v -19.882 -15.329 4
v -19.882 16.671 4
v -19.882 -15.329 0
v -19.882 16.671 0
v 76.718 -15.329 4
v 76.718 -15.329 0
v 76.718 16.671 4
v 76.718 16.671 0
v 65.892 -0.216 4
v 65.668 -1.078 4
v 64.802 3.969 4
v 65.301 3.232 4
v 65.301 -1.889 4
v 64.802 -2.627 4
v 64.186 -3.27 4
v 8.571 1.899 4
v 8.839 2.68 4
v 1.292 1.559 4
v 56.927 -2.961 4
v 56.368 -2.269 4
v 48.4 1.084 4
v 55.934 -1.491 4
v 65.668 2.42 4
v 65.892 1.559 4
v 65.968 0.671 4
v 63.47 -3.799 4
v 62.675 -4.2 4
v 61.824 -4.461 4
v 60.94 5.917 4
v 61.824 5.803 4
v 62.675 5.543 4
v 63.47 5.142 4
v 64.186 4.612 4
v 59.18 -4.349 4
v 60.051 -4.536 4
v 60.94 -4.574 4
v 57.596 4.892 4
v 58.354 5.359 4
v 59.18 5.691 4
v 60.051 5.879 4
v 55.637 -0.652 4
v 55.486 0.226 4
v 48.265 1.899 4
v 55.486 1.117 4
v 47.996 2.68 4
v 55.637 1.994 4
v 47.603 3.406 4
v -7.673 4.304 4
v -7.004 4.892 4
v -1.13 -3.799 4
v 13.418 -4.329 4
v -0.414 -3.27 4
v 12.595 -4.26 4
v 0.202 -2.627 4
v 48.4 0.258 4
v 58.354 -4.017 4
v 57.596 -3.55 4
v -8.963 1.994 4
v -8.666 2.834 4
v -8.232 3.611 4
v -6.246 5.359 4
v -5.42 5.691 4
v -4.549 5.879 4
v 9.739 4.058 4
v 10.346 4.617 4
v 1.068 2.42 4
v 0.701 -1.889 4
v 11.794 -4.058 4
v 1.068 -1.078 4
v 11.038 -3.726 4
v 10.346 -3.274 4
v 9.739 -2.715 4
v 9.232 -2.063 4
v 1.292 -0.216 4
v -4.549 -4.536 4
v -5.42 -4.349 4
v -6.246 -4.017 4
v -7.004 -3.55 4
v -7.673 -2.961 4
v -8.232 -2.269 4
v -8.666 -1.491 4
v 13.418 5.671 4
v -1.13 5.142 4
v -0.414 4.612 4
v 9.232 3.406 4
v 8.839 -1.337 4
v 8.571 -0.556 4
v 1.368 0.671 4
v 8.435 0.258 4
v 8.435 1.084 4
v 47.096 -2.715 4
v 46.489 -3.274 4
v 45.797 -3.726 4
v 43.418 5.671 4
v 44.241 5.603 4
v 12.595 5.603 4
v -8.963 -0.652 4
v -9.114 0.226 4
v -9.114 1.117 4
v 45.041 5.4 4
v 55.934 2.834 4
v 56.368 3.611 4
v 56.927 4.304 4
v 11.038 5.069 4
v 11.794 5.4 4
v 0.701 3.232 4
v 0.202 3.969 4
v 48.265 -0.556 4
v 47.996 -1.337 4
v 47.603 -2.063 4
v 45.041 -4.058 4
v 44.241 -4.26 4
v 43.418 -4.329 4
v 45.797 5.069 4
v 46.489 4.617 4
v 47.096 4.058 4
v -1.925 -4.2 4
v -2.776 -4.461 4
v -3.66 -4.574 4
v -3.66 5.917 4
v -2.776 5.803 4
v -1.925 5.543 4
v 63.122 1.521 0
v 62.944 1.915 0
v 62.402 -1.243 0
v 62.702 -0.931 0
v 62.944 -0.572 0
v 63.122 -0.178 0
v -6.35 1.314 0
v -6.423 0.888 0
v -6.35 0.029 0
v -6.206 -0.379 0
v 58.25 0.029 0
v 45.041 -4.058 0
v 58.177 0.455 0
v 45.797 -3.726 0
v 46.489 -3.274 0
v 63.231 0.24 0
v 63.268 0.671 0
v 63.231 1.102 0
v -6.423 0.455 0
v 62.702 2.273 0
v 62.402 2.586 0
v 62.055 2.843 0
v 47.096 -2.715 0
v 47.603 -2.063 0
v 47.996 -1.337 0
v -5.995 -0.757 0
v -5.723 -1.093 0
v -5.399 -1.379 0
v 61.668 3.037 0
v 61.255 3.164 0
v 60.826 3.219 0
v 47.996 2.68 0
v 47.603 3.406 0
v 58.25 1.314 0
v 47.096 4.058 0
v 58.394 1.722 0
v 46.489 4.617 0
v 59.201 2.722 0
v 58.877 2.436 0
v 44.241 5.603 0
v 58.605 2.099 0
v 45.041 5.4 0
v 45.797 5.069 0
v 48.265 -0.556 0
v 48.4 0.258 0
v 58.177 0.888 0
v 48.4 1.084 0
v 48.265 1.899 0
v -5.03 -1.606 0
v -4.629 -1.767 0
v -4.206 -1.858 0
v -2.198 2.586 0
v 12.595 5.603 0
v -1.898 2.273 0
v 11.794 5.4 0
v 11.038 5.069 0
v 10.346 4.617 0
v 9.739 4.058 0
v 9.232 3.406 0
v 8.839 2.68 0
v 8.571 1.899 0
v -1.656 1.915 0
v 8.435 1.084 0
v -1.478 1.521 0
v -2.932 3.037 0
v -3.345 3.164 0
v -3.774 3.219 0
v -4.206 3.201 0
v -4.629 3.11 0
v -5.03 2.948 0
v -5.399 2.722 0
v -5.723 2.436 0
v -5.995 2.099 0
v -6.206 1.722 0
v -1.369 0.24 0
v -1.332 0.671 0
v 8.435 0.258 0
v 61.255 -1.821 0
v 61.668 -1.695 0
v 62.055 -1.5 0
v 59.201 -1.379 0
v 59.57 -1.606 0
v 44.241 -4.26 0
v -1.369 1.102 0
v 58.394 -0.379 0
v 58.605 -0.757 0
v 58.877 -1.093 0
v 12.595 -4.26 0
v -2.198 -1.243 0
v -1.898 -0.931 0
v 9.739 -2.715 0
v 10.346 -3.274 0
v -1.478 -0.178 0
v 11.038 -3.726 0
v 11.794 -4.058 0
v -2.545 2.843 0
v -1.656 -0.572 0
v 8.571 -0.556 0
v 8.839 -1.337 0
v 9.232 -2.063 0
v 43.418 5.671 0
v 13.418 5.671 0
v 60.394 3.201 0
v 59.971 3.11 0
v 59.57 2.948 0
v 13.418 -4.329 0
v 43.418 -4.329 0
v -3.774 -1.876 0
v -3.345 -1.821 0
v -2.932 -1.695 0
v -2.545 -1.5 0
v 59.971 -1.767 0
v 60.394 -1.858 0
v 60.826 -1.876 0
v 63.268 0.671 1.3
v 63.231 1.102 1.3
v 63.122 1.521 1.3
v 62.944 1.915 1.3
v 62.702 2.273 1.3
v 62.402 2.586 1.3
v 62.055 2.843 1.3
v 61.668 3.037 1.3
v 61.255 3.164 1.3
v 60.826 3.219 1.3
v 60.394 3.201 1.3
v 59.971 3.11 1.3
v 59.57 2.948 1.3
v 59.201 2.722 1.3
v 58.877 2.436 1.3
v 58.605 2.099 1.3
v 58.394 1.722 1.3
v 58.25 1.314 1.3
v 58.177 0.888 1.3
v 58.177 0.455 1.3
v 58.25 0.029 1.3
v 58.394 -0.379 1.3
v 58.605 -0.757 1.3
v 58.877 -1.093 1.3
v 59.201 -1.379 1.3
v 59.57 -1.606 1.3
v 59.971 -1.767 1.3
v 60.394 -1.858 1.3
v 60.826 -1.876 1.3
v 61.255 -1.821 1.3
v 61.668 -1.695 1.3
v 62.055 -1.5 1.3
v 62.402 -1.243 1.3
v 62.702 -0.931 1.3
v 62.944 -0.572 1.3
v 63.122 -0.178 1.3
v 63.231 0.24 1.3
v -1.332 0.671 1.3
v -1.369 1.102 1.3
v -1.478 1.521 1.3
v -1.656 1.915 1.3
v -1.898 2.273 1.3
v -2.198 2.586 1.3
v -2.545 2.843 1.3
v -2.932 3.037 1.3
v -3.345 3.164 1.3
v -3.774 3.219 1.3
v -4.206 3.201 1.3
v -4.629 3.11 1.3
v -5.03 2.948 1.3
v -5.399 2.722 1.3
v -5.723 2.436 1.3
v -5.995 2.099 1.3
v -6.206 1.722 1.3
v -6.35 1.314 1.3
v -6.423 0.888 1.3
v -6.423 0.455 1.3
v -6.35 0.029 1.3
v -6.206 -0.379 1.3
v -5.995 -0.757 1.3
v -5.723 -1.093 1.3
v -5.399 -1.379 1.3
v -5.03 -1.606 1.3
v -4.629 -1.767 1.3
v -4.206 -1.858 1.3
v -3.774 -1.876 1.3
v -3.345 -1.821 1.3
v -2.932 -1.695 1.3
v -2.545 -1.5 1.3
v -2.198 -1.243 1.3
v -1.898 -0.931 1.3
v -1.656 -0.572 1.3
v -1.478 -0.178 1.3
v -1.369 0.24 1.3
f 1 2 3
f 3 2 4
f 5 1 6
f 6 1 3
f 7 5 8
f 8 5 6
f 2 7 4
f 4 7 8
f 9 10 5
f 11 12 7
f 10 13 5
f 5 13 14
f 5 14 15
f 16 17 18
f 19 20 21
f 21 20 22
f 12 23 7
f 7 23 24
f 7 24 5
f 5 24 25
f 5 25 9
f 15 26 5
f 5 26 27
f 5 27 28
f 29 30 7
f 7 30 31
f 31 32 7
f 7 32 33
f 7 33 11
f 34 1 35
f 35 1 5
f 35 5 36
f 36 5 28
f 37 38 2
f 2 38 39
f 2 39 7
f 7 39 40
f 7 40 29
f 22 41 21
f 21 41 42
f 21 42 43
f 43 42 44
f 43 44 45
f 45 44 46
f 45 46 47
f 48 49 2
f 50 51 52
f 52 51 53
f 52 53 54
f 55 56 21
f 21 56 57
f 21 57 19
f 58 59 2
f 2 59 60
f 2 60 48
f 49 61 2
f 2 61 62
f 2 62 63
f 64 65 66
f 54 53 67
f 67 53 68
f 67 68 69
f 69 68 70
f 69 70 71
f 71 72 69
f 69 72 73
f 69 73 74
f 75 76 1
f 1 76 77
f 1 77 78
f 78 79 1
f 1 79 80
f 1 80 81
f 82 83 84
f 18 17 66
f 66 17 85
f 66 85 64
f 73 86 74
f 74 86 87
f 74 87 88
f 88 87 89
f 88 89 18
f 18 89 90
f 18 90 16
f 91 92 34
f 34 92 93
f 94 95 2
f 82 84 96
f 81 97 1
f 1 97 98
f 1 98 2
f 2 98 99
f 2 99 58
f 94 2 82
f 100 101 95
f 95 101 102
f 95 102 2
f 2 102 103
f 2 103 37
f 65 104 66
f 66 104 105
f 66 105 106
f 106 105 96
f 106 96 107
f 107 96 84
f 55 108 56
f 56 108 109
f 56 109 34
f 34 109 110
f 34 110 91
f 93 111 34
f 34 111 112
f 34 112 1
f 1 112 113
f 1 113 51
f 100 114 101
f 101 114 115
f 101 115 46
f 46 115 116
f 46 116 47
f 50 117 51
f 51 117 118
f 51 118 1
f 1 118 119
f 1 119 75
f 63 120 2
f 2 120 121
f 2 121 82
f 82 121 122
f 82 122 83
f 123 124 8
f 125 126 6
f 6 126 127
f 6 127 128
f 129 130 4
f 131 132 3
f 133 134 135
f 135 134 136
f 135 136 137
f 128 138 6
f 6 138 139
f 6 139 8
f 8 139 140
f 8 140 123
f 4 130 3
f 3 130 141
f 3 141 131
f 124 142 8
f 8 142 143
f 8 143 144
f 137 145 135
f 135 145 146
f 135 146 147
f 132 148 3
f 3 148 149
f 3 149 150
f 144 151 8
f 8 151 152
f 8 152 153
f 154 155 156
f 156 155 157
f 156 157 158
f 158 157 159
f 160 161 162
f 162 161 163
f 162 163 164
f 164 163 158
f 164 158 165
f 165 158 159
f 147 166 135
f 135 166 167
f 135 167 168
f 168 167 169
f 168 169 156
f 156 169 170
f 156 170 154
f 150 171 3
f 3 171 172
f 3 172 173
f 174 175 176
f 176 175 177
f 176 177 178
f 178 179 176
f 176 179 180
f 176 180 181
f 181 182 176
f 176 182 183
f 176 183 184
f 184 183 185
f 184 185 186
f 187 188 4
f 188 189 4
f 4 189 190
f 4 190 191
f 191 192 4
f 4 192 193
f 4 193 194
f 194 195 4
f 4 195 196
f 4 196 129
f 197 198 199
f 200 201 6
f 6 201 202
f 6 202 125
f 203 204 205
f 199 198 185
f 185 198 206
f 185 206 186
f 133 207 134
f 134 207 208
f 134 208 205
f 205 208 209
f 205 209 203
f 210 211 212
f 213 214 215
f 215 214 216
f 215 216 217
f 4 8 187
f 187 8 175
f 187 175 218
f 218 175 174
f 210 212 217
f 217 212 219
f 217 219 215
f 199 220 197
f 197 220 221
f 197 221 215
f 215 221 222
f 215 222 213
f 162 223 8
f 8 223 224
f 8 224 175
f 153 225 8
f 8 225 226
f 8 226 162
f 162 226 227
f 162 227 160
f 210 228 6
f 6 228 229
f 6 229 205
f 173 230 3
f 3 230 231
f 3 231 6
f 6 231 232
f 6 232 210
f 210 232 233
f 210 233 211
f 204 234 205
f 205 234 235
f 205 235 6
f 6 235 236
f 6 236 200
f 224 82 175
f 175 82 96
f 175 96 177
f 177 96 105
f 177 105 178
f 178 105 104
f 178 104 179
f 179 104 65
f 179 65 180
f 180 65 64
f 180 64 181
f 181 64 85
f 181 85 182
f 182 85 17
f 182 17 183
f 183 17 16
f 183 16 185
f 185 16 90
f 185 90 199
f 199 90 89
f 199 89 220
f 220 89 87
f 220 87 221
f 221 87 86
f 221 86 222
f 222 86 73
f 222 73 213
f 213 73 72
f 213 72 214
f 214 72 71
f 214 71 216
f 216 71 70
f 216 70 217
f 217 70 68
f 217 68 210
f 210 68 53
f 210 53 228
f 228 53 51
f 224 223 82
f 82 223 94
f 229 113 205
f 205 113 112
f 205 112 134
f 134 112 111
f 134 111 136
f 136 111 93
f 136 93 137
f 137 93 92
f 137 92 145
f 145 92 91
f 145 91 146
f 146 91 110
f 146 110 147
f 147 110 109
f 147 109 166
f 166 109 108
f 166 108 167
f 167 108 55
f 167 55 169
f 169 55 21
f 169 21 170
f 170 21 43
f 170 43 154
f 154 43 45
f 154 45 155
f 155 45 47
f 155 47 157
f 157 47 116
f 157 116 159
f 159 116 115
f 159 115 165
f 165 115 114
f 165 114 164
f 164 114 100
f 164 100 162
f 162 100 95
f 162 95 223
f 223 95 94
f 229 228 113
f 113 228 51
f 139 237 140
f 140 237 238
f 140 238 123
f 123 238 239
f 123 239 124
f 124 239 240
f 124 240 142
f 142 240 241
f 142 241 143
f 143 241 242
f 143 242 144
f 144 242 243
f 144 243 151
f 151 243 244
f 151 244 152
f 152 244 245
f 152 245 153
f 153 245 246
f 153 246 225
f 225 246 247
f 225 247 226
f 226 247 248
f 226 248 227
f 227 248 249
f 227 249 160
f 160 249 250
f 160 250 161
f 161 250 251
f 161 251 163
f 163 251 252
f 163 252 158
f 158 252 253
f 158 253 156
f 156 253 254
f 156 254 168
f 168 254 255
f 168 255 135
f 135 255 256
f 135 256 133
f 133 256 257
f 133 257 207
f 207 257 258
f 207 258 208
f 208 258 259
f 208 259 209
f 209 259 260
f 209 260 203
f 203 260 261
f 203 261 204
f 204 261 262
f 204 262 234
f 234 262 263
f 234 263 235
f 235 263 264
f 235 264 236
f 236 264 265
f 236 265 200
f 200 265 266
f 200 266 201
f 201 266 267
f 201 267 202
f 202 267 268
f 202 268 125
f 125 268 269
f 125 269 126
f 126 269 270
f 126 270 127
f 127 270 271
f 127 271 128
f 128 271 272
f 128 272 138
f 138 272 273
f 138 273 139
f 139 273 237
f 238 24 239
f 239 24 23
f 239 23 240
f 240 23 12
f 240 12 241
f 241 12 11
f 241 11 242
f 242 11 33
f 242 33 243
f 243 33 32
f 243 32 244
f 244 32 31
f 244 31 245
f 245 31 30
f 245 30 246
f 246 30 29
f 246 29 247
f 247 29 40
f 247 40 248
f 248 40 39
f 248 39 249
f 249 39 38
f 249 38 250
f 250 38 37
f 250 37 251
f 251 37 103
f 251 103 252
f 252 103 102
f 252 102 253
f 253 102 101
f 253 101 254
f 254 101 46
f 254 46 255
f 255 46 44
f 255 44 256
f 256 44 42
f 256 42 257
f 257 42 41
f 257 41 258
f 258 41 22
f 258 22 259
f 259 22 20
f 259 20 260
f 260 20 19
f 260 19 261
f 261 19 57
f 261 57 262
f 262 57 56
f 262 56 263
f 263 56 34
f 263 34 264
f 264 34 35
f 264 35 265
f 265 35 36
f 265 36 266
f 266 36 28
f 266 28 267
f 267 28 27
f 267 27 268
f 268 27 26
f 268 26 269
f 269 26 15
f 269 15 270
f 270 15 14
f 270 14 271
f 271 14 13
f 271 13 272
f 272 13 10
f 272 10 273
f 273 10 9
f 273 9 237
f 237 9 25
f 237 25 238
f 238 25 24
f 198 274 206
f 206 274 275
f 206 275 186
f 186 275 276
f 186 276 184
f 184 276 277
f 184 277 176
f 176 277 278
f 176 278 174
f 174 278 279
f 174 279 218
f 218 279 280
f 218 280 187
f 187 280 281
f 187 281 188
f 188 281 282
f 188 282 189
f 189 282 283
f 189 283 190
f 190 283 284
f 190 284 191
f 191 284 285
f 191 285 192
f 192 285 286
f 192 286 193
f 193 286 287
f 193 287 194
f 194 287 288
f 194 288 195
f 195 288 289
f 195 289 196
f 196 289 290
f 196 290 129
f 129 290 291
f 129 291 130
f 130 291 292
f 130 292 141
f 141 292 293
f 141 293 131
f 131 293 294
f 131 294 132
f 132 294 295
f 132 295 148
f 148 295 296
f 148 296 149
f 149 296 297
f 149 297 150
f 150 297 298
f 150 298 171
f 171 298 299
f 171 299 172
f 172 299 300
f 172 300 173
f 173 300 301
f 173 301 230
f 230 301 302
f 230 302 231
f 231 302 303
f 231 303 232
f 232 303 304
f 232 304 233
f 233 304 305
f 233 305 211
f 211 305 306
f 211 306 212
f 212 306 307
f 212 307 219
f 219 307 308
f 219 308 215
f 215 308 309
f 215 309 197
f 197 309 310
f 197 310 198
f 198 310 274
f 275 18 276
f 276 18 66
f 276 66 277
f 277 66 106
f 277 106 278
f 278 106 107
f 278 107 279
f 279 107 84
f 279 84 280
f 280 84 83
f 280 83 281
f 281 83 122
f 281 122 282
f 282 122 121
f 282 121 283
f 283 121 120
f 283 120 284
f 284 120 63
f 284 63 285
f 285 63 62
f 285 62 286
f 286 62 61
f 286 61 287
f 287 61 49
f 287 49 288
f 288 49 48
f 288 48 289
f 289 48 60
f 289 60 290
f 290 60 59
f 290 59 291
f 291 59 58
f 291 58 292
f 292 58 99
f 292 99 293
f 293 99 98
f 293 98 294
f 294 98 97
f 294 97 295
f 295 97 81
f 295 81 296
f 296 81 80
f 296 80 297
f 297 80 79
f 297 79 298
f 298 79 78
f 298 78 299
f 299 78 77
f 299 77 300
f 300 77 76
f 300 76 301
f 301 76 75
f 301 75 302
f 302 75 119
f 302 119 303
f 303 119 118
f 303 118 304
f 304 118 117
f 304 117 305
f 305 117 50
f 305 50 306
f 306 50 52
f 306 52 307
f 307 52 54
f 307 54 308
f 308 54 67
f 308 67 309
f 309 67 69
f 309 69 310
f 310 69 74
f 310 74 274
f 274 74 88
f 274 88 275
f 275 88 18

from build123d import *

# Parameters (mm, degrees)
SKETCH1_W                                  = 96.6
SKETCH1_H                                  = 32
BOSS_EXTRUDE1_DEPTH                        = 4
CUT_EXTRUDE1_DEPTH                         = 5
FRAISAGE_POUR_VIS_T_TE_FRAIS_E_BOM_2_COUNT = 2
FRAISAGE_POUR_VIS_T_TE_FRAIS_E_BOM_2_PITCH = 64.6


with BuildPart() as part:
    # Sketch1 → Boss-Extrude1 (new body)
    with BuildSketch(Plane.XY):
        with Locations((28.417538555, 0.671328671)):
            Rectangle(SKETCH1_W, SKETCH1_H)
    extrude(amount=BOSS_EXTRUDE1_DEPTH)

    # Sketch2 → Cut-Extrude1 (cut, through all)
    with BuildSketch(Plane.XY.offset(4)):
        with BuildLine():
            Line((13.417538555, 5.671328671), (43.417538555, 5.671328671))
            ThreePointArc((43.417538555, 5.671328671), (48.417538555, 0.671328671), (43.417538555, -4.328671329))
            Line((43.417538555, -4.328671329), (13.417538555, -4.328671329))
            ThreePointArc((13.417538555, -4.328671329), (8.417538555, 0.671328671), (13.417538555, 5.671328671))
        make_face()
    extrude(amount=-CUT_EXTRUDE1_DEPTH, mode=Mode.SUBTRACT)

    # Esquisse3 → Fraisage pour vis à tête fraisée bombée #51 (revolve, cut)
    with BuildSketch(Plane(origin=(-3.882461445, 0.671328671, 4), x_dir=(0, -1, 0), z_dir=(1, 0, 0))):
        Polygon((0, 0), (0, 4), (2.54999998, 4), (2.54999998, 2.700000061), (5.250000041, 0), align=None)
    fraisage_pour_vis_t_te_frais_e_bomb_e = revolve(axis=Axis((-3.882461445, 0.671328671, 10.35), (0, 0, -1)), mode=Mode.SUBTRACT)

    # Fraisage pour vis _ t_te frais_e bom 2: Fraisage pour vis à tête fraisée bombée #51 ×2
    with Locations(*[(i * FRAISAGE_POUR_VIS_T_TE_FRAIS_E_BOM_2_PITCH, 0, 0) for i in range(1, FRAISAGE_POUR_VIS_T_TE_FRAIS_E_BOM_2_COUNT)]):
        add(fraisage_pour_vis_t_te_frais_e_bomb_e, mode=Mode.SUBTRACT)


solid = part.part
